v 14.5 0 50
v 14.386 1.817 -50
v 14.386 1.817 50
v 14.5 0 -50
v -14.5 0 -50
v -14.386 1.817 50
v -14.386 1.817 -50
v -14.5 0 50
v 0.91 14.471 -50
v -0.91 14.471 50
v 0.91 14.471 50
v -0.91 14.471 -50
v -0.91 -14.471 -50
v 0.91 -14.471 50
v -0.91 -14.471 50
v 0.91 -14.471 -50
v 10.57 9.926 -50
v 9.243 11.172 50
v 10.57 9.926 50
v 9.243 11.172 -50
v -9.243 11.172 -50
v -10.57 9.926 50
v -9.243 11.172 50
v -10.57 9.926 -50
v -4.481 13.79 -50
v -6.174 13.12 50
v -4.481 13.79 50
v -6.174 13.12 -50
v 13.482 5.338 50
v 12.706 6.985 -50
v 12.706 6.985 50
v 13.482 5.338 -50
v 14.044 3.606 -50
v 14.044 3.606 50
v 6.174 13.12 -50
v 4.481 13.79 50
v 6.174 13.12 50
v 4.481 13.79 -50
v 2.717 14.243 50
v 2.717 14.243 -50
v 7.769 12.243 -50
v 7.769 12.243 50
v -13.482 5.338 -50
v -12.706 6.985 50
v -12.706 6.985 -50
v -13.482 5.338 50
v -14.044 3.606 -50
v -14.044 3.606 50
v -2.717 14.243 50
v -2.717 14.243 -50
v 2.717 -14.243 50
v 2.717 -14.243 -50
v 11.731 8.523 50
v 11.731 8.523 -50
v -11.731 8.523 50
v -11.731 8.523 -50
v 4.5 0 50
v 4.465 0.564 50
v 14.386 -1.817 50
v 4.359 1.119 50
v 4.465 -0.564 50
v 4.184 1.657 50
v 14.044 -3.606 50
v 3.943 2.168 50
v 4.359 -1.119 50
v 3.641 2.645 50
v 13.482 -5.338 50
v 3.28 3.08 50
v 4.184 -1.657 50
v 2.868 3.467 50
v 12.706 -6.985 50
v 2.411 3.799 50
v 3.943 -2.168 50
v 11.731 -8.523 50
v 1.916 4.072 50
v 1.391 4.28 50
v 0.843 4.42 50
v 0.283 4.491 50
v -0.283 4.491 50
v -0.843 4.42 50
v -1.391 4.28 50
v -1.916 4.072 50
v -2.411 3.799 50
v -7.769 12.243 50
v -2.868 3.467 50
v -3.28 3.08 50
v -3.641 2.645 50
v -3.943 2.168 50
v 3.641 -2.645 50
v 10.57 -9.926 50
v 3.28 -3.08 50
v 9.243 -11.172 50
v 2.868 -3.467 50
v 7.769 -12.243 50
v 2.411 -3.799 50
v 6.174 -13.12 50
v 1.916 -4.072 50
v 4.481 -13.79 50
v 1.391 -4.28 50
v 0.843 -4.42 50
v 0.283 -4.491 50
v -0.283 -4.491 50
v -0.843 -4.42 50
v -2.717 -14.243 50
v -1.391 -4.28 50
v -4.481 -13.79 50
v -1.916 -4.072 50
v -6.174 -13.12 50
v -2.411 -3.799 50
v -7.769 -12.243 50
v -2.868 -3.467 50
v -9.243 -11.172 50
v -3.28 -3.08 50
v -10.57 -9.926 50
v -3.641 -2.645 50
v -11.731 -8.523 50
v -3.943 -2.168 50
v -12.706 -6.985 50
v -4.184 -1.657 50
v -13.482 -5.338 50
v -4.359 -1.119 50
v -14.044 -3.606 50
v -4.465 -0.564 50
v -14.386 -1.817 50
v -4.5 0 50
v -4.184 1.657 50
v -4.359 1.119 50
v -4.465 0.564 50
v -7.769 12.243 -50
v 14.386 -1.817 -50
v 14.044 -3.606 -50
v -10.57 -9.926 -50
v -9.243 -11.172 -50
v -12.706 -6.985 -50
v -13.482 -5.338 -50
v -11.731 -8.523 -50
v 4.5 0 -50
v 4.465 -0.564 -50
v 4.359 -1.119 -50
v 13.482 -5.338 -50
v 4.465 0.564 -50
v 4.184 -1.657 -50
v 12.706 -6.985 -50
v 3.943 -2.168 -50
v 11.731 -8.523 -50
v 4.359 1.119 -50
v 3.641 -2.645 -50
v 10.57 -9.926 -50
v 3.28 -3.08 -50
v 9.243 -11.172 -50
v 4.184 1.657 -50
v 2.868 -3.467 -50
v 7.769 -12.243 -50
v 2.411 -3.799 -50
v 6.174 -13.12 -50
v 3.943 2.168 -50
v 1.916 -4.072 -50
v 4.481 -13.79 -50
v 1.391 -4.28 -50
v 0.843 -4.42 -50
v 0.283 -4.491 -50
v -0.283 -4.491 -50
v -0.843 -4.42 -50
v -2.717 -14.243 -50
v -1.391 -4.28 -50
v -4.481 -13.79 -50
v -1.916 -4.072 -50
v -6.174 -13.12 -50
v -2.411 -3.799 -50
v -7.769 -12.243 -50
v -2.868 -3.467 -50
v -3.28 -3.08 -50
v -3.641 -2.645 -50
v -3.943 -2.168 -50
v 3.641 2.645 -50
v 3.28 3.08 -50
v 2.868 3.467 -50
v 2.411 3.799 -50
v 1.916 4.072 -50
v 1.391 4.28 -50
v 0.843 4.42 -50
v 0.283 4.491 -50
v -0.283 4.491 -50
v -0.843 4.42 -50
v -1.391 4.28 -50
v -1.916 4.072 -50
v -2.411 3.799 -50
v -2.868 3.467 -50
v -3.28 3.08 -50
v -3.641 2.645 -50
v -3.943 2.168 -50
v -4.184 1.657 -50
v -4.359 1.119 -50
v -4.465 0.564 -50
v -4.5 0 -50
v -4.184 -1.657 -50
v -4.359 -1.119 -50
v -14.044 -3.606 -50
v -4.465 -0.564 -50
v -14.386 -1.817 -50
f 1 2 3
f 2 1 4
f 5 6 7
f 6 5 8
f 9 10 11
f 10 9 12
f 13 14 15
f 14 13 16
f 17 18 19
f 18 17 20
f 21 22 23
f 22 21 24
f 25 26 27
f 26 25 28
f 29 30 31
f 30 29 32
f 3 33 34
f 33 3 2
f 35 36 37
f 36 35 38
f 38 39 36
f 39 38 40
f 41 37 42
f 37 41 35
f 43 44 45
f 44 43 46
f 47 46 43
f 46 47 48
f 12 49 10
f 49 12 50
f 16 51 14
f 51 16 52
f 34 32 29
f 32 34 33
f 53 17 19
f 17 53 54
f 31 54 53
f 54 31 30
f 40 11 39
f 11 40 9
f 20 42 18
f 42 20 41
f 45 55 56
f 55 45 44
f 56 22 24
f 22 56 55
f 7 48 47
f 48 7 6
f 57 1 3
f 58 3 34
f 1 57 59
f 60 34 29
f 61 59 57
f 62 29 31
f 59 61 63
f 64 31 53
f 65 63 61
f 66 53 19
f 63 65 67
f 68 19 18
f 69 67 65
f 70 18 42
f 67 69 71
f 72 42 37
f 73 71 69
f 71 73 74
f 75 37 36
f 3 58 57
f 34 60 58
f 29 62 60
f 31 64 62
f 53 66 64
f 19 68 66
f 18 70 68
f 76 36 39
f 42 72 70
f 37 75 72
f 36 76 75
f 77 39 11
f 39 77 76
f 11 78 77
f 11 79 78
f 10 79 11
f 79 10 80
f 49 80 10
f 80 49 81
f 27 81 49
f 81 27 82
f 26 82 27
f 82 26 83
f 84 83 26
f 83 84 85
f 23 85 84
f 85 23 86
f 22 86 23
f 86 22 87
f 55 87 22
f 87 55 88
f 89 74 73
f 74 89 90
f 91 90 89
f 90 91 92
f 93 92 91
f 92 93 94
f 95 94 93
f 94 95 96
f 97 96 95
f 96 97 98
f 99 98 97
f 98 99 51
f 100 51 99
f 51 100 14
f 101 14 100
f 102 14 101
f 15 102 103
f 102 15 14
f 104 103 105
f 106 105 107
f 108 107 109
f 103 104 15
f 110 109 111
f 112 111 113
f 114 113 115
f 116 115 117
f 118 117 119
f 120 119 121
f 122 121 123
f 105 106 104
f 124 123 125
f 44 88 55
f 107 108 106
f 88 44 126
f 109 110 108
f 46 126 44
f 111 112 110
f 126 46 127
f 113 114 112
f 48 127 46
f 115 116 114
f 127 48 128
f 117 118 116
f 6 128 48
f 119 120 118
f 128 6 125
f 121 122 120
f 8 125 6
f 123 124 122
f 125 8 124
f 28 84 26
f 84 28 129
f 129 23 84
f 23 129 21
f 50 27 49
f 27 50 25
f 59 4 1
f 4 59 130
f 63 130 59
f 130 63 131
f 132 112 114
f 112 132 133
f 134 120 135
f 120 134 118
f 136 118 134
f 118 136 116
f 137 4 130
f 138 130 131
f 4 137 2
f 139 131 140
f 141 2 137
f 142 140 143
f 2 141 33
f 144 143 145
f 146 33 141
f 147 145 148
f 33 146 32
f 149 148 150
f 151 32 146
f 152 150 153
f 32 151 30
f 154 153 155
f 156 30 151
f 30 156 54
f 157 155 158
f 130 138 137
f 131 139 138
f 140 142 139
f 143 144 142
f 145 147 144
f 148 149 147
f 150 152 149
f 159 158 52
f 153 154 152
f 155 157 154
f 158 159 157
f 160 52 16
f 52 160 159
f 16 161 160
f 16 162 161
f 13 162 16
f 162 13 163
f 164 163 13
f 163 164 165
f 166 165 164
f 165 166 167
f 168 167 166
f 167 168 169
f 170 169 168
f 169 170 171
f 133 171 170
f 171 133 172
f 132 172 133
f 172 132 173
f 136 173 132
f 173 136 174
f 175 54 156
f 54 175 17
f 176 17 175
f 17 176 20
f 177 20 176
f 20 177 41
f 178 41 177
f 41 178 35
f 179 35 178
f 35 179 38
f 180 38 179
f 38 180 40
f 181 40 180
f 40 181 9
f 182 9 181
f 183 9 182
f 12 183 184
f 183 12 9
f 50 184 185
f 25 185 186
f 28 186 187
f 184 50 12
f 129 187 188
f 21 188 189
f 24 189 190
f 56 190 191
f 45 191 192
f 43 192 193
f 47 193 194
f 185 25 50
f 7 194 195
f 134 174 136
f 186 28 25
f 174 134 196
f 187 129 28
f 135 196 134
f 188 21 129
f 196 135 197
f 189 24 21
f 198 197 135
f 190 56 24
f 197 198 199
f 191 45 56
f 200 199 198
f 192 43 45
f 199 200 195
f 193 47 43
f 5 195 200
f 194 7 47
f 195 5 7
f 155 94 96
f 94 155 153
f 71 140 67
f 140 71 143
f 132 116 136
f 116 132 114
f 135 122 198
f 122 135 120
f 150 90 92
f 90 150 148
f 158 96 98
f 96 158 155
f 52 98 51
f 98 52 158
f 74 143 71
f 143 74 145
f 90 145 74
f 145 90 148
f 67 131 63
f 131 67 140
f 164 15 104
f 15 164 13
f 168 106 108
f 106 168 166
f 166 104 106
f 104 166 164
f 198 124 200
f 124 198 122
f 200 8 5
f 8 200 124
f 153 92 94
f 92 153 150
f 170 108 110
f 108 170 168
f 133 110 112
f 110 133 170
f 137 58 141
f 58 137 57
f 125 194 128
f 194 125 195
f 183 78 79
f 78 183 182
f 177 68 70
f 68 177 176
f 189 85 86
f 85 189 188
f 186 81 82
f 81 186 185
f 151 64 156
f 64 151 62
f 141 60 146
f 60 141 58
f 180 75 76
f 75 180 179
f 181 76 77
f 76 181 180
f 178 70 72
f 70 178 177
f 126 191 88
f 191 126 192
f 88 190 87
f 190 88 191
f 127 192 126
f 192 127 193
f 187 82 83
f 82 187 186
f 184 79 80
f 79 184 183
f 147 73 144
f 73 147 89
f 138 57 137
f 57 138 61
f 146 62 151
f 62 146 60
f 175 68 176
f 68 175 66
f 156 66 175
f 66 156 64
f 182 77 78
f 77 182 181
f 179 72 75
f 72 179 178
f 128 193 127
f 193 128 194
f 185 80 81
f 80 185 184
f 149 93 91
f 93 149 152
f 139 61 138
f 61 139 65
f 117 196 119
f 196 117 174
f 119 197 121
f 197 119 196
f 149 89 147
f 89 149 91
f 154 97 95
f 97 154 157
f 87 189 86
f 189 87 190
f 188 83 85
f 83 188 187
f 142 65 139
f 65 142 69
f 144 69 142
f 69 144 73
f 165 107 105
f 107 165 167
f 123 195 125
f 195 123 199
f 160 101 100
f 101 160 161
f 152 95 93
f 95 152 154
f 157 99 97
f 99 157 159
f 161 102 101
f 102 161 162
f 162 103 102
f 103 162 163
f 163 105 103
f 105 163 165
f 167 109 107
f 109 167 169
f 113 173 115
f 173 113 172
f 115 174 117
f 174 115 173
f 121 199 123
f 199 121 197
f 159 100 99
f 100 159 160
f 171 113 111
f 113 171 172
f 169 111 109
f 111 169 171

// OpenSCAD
$fn = 50;


difference() {
	union() {
		translate(v = [0, 0, -50.0000000000]) {
			cylinder(h = 100, r = 14.5000000000);
		}
	}
	union() {
		translate(v = [0, 0, -100.0000000000]) {
			cylinder(h = 200, r = 4.5000000000);
		}
	}
}
